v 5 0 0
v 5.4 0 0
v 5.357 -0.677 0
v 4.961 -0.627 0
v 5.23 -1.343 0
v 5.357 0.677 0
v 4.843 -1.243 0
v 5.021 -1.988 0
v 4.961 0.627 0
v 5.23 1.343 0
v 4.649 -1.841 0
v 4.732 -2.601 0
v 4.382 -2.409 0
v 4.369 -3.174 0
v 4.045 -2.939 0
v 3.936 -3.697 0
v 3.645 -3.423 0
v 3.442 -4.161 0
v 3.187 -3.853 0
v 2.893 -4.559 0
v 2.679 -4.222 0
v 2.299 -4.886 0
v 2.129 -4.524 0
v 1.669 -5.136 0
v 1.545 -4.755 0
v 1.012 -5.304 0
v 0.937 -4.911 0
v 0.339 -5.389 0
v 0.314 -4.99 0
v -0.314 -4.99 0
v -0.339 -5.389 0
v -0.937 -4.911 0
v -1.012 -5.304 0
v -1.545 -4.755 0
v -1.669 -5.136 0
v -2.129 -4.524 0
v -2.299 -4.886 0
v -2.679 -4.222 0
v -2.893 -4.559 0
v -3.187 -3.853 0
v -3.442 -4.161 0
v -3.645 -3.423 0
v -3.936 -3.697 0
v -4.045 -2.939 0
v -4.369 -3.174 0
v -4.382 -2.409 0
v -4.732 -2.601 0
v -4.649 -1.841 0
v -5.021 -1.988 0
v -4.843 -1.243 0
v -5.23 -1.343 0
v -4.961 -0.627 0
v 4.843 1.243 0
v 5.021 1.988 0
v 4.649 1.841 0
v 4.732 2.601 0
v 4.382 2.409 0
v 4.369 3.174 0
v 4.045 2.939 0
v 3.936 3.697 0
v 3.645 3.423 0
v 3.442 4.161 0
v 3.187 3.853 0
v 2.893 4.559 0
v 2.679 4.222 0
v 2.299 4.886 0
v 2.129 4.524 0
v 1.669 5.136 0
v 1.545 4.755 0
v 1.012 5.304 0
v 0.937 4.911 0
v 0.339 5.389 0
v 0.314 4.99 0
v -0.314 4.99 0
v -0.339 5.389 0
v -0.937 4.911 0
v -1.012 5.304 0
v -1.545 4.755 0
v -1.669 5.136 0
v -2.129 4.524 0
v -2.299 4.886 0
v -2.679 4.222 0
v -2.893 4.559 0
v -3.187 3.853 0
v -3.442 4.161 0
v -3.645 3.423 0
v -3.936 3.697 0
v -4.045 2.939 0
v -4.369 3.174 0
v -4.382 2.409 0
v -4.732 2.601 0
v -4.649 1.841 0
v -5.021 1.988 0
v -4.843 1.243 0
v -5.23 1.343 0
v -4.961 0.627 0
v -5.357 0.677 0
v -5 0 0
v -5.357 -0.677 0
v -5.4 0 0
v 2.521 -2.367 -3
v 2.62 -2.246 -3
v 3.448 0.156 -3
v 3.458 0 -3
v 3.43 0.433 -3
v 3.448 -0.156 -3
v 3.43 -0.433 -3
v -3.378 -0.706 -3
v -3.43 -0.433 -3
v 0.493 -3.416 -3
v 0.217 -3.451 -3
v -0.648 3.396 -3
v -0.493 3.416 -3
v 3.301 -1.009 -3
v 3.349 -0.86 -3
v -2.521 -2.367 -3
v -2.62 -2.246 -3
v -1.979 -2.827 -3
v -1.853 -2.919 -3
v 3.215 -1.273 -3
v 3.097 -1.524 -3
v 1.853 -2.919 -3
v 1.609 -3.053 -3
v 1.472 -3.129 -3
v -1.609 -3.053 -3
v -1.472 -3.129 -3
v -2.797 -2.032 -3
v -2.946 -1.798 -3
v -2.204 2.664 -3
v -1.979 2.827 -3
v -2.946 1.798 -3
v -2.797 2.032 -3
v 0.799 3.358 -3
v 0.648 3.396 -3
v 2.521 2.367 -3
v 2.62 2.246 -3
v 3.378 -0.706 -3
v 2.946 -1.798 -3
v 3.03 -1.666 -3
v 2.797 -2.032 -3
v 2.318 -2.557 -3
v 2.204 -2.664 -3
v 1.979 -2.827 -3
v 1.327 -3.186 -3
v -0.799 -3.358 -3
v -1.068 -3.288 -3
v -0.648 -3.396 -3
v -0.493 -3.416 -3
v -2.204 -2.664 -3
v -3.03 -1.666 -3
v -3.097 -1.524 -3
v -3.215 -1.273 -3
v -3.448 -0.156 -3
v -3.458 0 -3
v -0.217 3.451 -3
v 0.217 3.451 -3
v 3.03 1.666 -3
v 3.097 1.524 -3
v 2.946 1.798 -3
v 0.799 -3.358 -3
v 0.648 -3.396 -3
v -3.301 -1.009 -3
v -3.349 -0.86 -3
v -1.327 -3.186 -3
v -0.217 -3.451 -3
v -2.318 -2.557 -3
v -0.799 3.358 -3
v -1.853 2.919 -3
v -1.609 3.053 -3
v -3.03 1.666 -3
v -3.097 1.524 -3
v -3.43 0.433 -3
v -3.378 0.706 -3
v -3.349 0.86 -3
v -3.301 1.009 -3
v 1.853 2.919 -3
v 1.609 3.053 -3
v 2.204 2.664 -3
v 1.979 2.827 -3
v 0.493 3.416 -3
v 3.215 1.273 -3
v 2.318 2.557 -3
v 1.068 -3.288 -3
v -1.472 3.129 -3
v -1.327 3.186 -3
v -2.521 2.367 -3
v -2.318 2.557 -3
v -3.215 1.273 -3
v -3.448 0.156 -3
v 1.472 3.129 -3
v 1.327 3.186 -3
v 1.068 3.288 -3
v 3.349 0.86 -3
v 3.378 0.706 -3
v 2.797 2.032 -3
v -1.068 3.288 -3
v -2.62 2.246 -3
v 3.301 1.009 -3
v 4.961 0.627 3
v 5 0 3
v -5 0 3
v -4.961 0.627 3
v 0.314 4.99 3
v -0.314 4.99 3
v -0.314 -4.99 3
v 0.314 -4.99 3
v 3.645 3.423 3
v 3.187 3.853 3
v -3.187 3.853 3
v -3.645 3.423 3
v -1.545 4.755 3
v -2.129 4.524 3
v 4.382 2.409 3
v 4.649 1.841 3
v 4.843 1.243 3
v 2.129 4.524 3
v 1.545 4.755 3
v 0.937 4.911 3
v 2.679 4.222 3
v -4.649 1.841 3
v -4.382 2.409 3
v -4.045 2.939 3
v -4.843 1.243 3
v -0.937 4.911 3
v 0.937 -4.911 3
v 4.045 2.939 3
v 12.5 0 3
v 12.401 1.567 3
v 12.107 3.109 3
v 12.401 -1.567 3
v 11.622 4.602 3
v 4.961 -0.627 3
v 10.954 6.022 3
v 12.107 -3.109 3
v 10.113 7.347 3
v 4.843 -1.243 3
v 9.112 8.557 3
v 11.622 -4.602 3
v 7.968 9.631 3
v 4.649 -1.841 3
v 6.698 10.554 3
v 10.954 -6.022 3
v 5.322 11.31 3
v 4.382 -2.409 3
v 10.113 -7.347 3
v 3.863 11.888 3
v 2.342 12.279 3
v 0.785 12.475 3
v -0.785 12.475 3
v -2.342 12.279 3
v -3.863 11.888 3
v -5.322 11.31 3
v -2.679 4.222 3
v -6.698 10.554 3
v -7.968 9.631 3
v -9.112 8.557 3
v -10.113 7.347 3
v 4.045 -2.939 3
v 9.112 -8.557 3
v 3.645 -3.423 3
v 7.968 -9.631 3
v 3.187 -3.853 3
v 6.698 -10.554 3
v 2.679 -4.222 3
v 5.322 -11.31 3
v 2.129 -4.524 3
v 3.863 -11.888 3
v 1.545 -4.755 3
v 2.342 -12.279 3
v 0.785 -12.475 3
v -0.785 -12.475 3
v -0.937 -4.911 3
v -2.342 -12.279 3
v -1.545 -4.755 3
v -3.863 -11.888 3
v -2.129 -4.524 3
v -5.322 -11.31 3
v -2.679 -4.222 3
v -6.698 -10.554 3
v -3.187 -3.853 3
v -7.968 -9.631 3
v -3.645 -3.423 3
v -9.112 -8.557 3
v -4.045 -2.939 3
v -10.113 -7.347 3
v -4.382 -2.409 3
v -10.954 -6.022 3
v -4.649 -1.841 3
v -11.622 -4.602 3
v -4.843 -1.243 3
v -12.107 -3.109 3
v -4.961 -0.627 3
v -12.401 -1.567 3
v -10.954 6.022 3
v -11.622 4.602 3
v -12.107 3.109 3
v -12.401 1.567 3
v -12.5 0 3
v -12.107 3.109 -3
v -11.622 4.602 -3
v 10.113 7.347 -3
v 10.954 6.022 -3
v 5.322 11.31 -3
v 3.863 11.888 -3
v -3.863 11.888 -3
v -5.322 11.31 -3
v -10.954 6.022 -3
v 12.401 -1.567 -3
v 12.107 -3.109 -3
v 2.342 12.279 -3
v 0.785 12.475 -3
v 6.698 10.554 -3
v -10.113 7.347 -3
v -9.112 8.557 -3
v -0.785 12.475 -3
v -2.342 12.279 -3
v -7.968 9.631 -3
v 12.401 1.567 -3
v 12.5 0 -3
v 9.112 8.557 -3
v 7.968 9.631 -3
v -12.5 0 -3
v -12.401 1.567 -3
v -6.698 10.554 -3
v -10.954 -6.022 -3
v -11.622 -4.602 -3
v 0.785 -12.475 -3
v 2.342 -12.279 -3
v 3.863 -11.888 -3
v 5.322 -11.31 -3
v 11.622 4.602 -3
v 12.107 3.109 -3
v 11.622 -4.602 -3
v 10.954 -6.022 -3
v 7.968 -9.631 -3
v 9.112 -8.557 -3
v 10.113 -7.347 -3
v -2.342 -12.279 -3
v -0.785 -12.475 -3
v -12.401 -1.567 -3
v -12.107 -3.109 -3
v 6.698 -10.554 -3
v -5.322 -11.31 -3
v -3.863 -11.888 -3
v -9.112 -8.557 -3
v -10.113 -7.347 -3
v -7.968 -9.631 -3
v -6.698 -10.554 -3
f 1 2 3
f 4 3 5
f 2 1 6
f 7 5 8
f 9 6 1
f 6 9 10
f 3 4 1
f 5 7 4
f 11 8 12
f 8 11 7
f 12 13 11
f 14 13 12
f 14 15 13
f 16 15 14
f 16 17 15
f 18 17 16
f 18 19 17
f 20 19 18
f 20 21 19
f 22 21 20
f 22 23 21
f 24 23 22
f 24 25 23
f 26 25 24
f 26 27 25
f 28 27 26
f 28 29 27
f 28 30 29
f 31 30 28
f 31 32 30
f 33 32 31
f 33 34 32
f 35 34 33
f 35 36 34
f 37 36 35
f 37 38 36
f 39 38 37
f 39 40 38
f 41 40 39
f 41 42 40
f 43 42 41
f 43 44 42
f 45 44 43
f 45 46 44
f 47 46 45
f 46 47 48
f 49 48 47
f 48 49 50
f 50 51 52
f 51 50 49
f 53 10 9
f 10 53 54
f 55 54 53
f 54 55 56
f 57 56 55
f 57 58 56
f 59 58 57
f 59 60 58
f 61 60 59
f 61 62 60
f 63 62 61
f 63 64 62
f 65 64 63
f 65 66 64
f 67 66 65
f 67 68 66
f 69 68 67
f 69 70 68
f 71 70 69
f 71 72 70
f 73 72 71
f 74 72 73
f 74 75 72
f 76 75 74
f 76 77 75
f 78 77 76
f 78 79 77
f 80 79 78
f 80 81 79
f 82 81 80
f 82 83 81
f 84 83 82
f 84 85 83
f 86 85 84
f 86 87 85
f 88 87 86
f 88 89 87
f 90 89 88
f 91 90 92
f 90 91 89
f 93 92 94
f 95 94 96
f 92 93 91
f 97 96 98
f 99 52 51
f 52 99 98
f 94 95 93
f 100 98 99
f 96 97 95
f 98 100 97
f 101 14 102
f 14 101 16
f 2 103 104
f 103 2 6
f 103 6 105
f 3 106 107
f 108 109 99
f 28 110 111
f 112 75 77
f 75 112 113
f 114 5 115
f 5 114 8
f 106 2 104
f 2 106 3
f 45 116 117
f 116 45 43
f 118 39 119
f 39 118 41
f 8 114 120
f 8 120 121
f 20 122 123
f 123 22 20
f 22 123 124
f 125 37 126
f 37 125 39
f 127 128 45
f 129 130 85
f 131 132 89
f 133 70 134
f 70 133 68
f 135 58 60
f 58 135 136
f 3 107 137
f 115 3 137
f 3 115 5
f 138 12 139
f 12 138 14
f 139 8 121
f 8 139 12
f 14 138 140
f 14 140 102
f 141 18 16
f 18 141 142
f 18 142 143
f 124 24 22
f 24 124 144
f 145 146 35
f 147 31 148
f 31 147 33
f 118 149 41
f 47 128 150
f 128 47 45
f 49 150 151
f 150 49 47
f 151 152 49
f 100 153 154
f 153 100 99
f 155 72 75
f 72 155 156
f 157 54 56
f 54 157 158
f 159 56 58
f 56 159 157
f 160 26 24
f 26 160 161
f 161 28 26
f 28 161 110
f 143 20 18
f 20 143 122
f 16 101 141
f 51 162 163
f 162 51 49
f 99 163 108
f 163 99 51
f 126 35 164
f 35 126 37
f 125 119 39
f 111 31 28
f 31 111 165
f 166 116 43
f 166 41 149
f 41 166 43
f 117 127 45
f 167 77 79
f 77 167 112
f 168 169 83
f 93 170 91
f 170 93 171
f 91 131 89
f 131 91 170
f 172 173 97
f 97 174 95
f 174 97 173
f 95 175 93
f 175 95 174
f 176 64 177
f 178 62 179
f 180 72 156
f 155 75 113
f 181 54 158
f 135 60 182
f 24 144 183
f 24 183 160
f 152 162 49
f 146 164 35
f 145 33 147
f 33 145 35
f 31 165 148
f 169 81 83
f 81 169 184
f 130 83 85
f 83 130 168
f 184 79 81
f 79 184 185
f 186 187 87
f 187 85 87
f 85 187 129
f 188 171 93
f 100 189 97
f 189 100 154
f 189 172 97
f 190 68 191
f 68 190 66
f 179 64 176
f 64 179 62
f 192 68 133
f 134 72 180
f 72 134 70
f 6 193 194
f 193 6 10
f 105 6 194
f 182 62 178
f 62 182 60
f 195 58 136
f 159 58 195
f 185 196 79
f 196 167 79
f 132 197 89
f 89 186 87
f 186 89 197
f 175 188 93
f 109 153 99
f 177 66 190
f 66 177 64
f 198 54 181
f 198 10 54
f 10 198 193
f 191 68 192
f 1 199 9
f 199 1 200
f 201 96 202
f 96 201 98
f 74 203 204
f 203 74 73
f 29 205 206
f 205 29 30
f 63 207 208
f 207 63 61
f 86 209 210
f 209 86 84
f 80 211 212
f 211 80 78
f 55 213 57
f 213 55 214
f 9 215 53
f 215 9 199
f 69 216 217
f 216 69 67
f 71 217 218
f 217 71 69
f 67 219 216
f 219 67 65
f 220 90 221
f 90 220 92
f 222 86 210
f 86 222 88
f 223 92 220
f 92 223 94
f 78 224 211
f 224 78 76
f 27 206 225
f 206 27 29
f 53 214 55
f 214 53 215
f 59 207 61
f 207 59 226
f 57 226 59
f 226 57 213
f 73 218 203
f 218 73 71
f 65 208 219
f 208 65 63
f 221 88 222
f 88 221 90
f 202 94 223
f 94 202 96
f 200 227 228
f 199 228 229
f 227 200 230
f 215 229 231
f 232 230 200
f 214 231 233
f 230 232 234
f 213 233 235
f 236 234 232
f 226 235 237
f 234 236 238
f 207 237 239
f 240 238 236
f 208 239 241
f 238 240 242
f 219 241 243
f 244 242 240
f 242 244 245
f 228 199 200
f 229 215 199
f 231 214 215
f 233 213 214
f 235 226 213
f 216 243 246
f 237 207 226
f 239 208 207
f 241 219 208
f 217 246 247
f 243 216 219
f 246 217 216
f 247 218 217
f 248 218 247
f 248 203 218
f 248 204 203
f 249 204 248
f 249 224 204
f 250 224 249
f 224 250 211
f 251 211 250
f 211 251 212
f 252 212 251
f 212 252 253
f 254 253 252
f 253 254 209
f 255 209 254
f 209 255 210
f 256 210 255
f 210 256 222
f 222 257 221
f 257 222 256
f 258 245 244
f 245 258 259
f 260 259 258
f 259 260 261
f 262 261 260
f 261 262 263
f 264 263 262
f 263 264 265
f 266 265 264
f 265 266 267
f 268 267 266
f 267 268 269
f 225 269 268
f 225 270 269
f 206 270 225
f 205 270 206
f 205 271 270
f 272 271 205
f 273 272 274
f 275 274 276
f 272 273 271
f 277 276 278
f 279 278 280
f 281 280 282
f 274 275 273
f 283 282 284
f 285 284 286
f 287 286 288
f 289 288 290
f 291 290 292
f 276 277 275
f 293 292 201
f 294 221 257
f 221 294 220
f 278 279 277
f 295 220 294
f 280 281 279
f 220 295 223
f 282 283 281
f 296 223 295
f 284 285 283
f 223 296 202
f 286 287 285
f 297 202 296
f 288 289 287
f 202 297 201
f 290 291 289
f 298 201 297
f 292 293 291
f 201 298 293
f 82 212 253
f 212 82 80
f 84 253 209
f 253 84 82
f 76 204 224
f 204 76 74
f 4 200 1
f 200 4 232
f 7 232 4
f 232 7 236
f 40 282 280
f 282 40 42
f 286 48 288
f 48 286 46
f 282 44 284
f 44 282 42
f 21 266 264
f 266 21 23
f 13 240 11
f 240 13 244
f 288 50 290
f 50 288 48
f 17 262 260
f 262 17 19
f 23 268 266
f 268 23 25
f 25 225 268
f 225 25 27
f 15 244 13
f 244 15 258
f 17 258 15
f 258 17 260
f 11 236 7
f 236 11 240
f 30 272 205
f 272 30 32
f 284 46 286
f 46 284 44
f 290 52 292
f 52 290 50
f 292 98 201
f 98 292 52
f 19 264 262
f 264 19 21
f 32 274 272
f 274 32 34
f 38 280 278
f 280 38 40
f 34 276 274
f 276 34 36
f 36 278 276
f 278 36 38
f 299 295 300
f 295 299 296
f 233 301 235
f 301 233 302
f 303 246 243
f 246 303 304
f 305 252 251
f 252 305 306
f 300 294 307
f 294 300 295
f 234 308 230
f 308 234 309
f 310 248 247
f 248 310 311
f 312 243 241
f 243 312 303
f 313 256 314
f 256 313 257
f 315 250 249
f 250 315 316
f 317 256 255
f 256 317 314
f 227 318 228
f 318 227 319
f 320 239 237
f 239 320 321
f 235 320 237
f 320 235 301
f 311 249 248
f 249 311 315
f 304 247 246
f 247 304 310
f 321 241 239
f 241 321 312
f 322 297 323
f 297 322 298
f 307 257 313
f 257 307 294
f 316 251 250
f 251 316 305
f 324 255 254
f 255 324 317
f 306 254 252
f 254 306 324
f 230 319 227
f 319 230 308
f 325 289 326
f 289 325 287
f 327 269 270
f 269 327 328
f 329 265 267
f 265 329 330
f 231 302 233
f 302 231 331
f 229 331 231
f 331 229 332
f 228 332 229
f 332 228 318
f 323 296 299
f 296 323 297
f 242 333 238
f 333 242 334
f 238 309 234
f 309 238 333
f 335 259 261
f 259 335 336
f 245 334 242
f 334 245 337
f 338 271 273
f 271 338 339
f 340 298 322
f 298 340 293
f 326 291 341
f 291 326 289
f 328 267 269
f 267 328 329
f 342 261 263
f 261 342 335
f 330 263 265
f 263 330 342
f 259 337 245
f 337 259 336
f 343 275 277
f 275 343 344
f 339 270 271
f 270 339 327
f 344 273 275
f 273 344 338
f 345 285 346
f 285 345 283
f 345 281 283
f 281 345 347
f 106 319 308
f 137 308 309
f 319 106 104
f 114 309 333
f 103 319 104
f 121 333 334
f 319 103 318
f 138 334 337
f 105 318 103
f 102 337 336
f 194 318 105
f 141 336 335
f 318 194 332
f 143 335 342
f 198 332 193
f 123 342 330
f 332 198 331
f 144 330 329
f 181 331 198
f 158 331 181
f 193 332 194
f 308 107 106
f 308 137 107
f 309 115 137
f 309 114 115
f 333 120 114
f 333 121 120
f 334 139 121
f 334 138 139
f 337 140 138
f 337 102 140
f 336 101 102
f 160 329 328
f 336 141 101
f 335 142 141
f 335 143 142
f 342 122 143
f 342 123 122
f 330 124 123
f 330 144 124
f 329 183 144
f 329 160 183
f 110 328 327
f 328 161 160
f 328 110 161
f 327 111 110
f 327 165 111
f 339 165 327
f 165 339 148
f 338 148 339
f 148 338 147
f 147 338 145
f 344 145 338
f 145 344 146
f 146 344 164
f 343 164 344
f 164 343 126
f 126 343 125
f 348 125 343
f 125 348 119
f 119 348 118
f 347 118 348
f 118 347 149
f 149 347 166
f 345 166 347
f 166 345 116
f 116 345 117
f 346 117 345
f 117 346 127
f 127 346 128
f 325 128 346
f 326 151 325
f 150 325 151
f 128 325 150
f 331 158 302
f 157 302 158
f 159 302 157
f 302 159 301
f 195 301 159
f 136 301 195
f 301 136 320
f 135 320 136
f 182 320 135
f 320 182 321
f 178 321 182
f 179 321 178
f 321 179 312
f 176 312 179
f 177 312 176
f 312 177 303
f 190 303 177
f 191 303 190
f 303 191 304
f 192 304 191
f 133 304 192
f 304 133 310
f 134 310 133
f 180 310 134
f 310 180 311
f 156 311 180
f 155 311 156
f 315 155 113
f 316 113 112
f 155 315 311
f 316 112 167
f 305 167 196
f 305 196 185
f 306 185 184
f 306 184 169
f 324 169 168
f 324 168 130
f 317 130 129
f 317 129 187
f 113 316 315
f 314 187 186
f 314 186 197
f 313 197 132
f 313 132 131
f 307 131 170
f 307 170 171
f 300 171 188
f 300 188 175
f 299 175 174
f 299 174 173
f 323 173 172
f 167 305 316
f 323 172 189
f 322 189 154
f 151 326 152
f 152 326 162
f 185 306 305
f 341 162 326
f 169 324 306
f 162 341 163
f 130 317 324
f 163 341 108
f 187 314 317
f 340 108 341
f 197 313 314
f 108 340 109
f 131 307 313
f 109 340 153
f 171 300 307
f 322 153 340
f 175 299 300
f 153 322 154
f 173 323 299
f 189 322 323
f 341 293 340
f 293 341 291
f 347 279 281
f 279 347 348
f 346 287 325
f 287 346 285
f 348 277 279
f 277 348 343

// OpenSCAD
$fn = 50;

difference() {
	union() {
		translate(v = [0, 0, -3.0]) {
			cylinder(h = 6, r = 12.5);
		}
		#translate(v = [0, 0, -6.0]) {
			cylinder(h = 6, r = 2.875);
		}
	}
	union() {
		translate(v = [0, 0, 0]) {
			rotate(a = [0, 0, 0]) {
				difference() {
					union() {
						translate(v = [0, 0, -6.0]) {
							cylinder(h = 6, r = 2.6);
						}
						translate(v = [0, 0, -3.9]) {
							cylinder(h = 3.9, r1 = 2.875, r2 = 5.4);
						}
						translate(v = [0, 0, -6.0]) {
							cylinder(h = 6, r = 2.875);
						}
						translate(v = [0, 0, -6.0]) {
							cylinder(h = 6, r = 2.6);
						}
					}
					union();
				}
			}
		}
		#cylinder(h = 3, r = 5.0);
	}
}
